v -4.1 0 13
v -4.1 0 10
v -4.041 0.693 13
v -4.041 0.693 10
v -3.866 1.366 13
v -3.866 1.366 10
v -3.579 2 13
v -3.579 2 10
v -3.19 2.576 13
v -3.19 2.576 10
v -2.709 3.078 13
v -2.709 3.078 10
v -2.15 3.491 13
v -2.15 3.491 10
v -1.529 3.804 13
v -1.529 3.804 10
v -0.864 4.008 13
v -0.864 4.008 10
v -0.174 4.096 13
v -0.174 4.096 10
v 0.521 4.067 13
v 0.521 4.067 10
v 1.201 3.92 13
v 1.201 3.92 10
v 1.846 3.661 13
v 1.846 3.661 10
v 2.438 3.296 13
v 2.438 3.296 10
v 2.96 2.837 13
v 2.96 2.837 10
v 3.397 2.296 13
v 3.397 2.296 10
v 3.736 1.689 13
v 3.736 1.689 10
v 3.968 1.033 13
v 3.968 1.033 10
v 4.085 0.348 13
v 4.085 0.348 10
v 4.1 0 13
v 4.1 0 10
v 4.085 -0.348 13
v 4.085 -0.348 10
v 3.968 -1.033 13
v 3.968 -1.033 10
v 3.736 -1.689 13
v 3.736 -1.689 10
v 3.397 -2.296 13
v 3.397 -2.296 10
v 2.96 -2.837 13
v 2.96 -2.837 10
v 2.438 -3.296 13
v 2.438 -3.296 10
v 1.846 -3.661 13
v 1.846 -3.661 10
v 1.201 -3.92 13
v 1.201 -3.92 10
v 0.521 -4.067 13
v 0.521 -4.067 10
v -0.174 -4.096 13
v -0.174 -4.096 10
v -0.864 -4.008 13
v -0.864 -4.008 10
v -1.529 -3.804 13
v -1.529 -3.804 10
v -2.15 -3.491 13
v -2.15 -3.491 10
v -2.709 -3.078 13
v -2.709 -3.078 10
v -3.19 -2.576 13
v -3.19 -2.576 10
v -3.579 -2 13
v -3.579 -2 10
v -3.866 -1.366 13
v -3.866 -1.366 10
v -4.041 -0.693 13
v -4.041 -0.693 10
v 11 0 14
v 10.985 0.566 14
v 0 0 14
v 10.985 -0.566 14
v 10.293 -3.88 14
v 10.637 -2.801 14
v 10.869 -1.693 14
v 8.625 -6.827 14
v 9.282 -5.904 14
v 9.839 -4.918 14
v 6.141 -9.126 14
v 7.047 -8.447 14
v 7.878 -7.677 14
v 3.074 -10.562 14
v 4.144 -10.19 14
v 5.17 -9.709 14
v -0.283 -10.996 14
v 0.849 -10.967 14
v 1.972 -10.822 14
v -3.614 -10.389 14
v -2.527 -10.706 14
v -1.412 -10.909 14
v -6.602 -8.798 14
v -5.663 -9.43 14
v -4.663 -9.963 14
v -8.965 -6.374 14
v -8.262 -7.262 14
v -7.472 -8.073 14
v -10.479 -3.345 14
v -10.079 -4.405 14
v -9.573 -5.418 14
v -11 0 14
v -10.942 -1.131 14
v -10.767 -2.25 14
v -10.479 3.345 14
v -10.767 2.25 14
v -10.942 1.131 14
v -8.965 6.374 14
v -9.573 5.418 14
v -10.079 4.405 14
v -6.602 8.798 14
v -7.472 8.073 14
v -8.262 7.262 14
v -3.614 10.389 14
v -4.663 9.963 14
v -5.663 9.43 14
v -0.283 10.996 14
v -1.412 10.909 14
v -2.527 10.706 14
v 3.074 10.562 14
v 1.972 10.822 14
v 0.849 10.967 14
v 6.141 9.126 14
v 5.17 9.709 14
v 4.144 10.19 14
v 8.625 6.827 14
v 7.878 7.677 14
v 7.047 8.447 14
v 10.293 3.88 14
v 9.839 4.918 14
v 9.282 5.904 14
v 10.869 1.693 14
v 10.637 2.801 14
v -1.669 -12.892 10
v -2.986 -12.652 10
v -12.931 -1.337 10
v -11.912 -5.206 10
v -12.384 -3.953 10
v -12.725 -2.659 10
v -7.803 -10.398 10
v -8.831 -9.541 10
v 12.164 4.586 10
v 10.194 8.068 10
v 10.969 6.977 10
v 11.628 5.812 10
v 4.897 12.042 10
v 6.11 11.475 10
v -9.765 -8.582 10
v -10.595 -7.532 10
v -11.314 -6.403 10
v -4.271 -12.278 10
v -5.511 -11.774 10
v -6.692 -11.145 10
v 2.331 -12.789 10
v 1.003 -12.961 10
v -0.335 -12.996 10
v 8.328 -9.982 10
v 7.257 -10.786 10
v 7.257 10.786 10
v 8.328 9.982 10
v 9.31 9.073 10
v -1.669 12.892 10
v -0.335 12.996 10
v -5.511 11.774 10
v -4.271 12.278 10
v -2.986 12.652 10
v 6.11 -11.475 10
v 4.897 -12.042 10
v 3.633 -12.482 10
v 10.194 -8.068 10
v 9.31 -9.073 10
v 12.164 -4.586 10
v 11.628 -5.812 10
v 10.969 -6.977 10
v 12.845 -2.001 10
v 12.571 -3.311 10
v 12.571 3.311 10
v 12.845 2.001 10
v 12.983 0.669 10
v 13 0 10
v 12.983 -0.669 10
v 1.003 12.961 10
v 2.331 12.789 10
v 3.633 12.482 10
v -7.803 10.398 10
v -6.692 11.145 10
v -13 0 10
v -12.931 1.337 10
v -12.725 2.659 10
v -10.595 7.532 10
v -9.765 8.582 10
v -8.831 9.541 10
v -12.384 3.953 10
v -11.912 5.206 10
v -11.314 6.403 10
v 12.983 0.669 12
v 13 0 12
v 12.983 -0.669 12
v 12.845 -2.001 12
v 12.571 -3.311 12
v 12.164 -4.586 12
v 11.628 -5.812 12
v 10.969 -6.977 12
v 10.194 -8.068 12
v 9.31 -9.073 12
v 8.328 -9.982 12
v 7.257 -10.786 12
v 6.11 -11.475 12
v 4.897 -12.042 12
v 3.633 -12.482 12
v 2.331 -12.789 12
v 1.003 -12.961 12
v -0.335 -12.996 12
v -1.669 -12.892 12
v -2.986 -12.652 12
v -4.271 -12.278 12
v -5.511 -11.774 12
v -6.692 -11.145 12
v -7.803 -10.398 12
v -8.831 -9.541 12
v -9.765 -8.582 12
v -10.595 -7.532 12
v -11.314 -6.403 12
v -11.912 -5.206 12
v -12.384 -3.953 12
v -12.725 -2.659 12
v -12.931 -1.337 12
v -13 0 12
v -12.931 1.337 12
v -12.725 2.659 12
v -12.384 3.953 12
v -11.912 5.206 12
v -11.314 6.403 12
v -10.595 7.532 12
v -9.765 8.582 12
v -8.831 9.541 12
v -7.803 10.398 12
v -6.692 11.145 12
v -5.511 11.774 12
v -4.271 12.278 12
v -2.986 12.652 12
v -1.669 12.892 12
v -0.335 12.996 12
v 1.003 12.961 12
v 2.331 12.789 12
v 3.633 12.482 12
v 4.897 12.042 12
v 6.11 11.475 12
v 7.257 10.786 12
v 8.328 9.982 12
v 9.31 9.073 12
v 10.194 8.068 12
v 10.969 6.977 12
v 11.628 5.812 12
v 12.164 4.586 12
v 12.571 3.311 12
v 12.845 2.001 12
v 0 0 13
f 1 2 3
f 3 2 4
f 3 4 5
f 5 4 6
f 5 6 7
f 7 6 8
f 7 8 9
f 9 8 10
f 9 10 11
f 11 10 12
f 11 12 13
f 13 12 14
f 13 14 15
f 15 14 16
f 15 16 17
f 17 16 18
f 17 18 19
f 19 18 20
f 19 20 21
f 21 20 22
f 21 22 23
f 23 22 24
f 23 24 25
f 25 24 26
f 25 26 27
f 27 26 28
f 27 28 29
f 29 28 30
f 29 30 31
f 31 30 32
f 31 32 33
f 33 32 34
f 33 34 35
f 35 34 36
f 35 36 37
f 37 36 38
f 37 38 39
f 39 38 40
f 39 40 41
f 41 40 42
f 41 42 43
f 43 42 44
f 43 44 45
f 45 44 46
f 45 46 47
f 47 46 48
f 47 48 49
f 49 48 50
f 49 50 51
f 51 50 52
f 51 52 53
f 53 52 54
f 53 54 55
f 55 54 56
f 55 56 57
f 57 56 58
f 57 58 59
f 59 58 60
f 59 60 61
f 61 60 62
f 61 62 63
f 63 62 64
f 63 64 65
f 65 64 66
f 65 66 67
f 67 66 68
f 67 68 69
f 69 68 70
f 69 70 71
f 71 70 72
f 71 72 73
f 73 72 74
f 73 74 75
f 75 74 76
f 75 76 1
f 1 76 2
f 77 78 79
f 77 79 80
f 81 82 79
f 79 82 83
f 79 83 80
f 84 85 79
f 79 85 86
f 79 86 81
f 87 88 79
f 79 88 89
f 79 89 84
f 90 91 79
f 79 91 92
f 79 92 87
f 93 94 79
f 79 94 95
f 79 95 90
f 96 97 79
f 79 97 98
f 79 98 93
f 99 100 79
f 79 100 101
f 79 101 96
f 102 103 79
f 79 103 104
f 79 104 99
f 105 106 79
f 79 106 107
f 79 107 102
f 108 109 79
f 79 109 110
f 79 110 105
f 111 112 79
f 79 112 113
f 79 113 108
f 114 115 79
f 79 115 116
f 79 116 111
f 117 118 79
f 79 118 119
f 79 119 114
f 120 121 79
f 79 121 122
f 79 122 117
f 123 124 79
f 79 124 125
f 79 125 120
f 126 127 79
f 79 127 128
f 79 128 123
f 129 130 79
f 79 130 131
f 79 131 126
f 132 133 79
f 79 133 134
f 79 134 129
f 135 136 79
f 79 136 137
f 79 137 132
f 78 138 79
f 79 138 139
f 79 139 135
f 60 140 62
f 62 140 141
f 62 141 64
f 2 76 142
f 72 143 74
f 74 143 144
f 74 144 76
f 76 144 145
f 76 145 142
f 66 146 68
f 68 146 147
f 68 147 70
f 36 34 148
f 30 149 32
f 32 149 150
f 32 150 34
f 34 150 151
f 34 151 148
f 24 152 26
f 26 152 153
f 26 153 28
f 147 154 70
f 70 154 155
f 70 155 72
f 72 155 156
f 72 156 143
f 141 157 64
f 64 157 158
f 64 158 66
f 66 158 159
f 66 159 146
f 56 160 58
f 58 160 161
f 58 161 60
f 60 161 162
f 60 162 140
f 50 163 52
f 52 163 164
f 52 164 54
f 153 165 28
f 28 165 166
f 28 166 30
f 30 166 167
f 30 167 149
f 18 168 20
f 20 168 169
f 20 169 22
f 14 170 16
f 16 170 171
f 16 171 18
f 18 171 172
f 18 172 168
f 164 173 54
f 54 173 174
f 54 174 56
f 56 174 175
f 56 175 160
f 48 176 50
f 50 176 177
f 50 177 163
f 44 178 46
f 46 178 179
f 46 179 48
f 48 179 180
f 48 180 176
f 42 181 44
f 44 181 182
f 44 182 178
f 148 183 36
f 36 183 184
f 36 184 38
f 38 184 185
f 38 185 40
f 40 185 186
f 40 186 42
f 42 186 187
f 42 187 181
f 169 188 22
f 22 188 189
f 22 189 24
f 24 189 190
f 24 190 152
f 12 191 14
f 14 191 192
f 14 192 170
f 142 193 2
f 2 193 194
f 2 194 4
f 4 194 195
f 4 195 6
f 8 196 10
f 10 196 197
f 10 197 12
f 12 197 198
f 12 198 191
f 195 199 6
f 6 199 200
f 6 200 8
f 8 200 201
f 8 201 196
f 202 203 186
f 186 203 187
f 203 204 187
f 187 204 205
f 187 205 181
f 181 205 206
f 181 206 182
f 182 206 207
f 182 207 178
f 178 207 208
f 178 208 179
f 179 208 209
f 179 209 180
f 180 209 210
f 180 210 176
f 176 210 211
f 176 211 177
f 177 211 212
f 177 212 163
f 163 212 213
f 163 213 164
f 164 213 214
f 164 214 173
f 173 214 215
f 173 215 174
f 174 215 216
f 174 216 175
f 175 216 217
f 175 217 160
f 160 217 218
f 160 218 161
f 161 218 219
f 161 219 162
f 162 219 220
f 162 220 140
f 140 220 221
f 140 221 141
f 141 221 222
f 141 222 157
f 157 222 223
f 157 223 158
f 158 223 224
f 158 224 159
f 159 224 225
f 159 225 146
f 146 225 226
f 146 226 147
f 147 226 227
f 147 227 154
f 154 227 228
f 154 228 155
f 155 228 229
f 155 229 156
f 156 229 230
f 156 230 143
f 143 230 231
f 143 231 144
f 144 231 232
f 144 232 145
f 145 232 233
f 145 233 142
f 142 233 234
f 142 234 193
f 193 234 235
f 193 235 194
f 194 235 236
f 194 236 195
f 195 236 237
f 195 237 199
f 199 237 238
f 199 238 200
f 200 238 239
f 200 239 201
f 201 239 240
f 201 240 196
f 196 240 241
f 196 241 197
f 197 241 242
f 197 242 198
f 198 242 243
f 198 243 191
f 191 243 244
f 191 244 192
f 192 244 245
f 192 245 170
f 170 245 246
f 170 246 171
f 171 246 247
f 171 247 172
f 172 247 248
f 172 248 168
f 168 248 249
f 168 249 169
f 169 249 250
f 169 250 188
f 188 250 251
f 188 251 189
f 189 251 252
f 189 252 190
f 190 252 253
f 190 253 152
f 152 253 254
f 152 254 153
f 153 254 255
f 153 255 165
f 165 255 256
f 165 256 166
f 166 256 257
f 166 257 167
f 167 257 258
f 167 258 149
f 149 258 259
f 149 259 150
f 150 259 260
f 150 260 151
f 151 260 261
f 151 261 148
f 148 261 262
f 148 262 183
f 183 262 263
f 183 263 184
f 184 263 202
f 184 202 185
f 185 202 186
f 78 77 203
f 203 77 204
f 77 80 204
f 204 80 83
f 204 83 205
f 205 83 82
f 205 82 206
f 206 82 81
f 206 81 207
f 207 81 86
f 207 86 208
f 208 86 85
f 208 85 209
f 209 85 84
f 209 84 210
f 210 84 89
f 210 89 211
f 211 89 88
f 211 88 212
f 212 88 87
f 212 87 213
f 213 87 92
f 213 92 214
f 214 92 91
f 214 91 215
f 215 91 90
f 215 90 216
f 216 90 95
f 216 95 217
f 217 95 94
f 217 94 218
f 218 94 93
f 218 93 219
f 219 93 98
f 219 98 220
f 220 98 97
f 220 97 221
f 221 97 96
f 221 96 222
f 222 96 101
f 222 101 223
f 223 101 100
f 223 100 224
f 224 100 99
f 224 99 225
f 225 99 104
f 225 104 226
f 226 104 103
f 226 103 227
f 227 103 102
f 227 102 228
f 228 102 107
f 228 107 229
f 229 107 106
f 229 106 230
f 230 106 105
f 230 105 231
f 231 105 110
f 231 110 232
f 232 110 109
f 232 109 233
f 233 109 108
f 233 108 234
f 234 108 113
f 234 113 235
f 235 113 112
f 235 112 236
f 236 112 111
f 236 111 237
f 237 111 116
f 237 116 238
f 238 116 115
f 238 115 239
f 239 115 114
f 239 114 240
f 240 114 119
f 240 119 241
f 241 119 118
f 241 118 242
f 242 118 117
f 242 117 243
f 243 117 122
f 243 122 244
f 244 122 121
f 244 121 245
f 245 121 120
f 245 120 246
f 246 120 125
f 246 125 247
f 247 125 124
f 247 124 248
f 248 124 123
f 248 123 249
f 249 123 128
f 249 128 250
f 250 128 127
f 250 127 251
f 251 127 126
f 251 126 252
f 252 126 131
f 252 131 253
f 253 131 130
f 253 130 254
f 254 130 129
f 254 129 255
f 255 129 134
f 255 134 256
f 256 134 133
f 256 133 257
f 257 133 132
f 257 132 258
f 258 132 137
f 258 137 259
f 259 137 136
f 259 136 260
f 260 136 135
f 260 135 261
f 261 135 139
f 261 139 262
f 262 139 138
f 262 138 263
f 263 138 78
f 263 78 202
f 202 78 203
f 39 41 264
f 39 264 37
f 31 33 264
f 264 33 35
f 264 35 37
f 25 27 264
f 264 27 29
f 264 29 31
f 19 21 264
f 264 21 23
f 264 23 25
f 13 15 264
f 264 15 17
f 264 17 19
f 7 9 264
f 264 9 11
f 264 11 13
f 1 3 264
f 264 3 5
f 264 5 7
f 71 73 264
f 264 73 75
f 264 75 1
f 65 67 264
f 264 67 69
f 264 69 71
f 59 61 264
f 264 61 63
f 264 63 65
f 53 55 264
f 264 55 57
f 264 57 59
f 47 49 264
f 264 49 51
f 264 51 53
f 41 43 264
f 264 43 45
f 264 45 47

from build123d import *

# Parameters (mm, degrees)
SKETCH1_R           = 3.7
BOSS_EXTRUDE1_DEPTH = 10
SKETCH2_R           = 5
BOSS_EXTRUDE2_DEPTH = 2
SKETCH3_R           = 13
SKETCH3_R_2         = 4.1
BOSS_EXTRUDE3_DEPTH = 4
SKETCH4_R           = 21.887313971
CUT_EXTRUDE1_DEPTH  = 23
CHAMFER2_SIZE       = 2
SKETCH5_R           = 5.500381587
BOSS_EXTRUDE4_DEPTH = 1


with BuildPart() as part:
    # Sketch1 → Boss-Extrude1 (new body)
    with BuildSketch(Plane.XY):
        Circle(SKETCH1_R)
    extrude(amount=BOSS_EXTRUDE1_DEPTH)

    # Sketch2 → Boss-Extrude2 (add)
    with BuildSketch(Plane(origin=(0, 0, 0), x_dir=(-1, 0, 0), z_dir=(0, 0, -1))):
        Circle(SKETCH2_R)
    extrude(amount=BOSS_EXTRUDE2_DEPTH)

    # Sketch4 → Cut-Extrude1 (cut)
    with BuildSketch(Plane(origin=(0, 0, 10), x_dir=(-1, 0, 0), z_dir=(0, 0, -1))):
        with Locations((0, 0.481738505)):
            Circle(SKETCH4_R)
    extrude(amount=CUT_EXTRUDE1_DEPTH, mode=Mode.SUBTRACT)


with BuildPart() as body_2:
    # Sketch3 → Boss-Extrude3 (new body)
    with BuildSketch(Plane.XY.offset(10)):
        Circle(SKETCH3_R)
        Circle(SKETCH3_R_2, mode=Mode.SUBTRACT)
    extrude(amount=BOSS_EXTRUDE3_DEPTH)

    # Chamfer2
    chamfer2_edges = [body_2.edges().sort_by_distance(p)[0] for p in [
        (-13, 0, 14),
    ]]
    chamfer(chamfer2_edges, length=CHAMFER2_SIZE)

    # Sketch5 → Boss-Extrude4 (add)
    with BuildSketch(Plane.XY.offset(14)):
        Circle(SKETCH5_R)
    extrude(amount=-BOSS_EXTRUDE4_DEPTH)


solid = body_2.part
